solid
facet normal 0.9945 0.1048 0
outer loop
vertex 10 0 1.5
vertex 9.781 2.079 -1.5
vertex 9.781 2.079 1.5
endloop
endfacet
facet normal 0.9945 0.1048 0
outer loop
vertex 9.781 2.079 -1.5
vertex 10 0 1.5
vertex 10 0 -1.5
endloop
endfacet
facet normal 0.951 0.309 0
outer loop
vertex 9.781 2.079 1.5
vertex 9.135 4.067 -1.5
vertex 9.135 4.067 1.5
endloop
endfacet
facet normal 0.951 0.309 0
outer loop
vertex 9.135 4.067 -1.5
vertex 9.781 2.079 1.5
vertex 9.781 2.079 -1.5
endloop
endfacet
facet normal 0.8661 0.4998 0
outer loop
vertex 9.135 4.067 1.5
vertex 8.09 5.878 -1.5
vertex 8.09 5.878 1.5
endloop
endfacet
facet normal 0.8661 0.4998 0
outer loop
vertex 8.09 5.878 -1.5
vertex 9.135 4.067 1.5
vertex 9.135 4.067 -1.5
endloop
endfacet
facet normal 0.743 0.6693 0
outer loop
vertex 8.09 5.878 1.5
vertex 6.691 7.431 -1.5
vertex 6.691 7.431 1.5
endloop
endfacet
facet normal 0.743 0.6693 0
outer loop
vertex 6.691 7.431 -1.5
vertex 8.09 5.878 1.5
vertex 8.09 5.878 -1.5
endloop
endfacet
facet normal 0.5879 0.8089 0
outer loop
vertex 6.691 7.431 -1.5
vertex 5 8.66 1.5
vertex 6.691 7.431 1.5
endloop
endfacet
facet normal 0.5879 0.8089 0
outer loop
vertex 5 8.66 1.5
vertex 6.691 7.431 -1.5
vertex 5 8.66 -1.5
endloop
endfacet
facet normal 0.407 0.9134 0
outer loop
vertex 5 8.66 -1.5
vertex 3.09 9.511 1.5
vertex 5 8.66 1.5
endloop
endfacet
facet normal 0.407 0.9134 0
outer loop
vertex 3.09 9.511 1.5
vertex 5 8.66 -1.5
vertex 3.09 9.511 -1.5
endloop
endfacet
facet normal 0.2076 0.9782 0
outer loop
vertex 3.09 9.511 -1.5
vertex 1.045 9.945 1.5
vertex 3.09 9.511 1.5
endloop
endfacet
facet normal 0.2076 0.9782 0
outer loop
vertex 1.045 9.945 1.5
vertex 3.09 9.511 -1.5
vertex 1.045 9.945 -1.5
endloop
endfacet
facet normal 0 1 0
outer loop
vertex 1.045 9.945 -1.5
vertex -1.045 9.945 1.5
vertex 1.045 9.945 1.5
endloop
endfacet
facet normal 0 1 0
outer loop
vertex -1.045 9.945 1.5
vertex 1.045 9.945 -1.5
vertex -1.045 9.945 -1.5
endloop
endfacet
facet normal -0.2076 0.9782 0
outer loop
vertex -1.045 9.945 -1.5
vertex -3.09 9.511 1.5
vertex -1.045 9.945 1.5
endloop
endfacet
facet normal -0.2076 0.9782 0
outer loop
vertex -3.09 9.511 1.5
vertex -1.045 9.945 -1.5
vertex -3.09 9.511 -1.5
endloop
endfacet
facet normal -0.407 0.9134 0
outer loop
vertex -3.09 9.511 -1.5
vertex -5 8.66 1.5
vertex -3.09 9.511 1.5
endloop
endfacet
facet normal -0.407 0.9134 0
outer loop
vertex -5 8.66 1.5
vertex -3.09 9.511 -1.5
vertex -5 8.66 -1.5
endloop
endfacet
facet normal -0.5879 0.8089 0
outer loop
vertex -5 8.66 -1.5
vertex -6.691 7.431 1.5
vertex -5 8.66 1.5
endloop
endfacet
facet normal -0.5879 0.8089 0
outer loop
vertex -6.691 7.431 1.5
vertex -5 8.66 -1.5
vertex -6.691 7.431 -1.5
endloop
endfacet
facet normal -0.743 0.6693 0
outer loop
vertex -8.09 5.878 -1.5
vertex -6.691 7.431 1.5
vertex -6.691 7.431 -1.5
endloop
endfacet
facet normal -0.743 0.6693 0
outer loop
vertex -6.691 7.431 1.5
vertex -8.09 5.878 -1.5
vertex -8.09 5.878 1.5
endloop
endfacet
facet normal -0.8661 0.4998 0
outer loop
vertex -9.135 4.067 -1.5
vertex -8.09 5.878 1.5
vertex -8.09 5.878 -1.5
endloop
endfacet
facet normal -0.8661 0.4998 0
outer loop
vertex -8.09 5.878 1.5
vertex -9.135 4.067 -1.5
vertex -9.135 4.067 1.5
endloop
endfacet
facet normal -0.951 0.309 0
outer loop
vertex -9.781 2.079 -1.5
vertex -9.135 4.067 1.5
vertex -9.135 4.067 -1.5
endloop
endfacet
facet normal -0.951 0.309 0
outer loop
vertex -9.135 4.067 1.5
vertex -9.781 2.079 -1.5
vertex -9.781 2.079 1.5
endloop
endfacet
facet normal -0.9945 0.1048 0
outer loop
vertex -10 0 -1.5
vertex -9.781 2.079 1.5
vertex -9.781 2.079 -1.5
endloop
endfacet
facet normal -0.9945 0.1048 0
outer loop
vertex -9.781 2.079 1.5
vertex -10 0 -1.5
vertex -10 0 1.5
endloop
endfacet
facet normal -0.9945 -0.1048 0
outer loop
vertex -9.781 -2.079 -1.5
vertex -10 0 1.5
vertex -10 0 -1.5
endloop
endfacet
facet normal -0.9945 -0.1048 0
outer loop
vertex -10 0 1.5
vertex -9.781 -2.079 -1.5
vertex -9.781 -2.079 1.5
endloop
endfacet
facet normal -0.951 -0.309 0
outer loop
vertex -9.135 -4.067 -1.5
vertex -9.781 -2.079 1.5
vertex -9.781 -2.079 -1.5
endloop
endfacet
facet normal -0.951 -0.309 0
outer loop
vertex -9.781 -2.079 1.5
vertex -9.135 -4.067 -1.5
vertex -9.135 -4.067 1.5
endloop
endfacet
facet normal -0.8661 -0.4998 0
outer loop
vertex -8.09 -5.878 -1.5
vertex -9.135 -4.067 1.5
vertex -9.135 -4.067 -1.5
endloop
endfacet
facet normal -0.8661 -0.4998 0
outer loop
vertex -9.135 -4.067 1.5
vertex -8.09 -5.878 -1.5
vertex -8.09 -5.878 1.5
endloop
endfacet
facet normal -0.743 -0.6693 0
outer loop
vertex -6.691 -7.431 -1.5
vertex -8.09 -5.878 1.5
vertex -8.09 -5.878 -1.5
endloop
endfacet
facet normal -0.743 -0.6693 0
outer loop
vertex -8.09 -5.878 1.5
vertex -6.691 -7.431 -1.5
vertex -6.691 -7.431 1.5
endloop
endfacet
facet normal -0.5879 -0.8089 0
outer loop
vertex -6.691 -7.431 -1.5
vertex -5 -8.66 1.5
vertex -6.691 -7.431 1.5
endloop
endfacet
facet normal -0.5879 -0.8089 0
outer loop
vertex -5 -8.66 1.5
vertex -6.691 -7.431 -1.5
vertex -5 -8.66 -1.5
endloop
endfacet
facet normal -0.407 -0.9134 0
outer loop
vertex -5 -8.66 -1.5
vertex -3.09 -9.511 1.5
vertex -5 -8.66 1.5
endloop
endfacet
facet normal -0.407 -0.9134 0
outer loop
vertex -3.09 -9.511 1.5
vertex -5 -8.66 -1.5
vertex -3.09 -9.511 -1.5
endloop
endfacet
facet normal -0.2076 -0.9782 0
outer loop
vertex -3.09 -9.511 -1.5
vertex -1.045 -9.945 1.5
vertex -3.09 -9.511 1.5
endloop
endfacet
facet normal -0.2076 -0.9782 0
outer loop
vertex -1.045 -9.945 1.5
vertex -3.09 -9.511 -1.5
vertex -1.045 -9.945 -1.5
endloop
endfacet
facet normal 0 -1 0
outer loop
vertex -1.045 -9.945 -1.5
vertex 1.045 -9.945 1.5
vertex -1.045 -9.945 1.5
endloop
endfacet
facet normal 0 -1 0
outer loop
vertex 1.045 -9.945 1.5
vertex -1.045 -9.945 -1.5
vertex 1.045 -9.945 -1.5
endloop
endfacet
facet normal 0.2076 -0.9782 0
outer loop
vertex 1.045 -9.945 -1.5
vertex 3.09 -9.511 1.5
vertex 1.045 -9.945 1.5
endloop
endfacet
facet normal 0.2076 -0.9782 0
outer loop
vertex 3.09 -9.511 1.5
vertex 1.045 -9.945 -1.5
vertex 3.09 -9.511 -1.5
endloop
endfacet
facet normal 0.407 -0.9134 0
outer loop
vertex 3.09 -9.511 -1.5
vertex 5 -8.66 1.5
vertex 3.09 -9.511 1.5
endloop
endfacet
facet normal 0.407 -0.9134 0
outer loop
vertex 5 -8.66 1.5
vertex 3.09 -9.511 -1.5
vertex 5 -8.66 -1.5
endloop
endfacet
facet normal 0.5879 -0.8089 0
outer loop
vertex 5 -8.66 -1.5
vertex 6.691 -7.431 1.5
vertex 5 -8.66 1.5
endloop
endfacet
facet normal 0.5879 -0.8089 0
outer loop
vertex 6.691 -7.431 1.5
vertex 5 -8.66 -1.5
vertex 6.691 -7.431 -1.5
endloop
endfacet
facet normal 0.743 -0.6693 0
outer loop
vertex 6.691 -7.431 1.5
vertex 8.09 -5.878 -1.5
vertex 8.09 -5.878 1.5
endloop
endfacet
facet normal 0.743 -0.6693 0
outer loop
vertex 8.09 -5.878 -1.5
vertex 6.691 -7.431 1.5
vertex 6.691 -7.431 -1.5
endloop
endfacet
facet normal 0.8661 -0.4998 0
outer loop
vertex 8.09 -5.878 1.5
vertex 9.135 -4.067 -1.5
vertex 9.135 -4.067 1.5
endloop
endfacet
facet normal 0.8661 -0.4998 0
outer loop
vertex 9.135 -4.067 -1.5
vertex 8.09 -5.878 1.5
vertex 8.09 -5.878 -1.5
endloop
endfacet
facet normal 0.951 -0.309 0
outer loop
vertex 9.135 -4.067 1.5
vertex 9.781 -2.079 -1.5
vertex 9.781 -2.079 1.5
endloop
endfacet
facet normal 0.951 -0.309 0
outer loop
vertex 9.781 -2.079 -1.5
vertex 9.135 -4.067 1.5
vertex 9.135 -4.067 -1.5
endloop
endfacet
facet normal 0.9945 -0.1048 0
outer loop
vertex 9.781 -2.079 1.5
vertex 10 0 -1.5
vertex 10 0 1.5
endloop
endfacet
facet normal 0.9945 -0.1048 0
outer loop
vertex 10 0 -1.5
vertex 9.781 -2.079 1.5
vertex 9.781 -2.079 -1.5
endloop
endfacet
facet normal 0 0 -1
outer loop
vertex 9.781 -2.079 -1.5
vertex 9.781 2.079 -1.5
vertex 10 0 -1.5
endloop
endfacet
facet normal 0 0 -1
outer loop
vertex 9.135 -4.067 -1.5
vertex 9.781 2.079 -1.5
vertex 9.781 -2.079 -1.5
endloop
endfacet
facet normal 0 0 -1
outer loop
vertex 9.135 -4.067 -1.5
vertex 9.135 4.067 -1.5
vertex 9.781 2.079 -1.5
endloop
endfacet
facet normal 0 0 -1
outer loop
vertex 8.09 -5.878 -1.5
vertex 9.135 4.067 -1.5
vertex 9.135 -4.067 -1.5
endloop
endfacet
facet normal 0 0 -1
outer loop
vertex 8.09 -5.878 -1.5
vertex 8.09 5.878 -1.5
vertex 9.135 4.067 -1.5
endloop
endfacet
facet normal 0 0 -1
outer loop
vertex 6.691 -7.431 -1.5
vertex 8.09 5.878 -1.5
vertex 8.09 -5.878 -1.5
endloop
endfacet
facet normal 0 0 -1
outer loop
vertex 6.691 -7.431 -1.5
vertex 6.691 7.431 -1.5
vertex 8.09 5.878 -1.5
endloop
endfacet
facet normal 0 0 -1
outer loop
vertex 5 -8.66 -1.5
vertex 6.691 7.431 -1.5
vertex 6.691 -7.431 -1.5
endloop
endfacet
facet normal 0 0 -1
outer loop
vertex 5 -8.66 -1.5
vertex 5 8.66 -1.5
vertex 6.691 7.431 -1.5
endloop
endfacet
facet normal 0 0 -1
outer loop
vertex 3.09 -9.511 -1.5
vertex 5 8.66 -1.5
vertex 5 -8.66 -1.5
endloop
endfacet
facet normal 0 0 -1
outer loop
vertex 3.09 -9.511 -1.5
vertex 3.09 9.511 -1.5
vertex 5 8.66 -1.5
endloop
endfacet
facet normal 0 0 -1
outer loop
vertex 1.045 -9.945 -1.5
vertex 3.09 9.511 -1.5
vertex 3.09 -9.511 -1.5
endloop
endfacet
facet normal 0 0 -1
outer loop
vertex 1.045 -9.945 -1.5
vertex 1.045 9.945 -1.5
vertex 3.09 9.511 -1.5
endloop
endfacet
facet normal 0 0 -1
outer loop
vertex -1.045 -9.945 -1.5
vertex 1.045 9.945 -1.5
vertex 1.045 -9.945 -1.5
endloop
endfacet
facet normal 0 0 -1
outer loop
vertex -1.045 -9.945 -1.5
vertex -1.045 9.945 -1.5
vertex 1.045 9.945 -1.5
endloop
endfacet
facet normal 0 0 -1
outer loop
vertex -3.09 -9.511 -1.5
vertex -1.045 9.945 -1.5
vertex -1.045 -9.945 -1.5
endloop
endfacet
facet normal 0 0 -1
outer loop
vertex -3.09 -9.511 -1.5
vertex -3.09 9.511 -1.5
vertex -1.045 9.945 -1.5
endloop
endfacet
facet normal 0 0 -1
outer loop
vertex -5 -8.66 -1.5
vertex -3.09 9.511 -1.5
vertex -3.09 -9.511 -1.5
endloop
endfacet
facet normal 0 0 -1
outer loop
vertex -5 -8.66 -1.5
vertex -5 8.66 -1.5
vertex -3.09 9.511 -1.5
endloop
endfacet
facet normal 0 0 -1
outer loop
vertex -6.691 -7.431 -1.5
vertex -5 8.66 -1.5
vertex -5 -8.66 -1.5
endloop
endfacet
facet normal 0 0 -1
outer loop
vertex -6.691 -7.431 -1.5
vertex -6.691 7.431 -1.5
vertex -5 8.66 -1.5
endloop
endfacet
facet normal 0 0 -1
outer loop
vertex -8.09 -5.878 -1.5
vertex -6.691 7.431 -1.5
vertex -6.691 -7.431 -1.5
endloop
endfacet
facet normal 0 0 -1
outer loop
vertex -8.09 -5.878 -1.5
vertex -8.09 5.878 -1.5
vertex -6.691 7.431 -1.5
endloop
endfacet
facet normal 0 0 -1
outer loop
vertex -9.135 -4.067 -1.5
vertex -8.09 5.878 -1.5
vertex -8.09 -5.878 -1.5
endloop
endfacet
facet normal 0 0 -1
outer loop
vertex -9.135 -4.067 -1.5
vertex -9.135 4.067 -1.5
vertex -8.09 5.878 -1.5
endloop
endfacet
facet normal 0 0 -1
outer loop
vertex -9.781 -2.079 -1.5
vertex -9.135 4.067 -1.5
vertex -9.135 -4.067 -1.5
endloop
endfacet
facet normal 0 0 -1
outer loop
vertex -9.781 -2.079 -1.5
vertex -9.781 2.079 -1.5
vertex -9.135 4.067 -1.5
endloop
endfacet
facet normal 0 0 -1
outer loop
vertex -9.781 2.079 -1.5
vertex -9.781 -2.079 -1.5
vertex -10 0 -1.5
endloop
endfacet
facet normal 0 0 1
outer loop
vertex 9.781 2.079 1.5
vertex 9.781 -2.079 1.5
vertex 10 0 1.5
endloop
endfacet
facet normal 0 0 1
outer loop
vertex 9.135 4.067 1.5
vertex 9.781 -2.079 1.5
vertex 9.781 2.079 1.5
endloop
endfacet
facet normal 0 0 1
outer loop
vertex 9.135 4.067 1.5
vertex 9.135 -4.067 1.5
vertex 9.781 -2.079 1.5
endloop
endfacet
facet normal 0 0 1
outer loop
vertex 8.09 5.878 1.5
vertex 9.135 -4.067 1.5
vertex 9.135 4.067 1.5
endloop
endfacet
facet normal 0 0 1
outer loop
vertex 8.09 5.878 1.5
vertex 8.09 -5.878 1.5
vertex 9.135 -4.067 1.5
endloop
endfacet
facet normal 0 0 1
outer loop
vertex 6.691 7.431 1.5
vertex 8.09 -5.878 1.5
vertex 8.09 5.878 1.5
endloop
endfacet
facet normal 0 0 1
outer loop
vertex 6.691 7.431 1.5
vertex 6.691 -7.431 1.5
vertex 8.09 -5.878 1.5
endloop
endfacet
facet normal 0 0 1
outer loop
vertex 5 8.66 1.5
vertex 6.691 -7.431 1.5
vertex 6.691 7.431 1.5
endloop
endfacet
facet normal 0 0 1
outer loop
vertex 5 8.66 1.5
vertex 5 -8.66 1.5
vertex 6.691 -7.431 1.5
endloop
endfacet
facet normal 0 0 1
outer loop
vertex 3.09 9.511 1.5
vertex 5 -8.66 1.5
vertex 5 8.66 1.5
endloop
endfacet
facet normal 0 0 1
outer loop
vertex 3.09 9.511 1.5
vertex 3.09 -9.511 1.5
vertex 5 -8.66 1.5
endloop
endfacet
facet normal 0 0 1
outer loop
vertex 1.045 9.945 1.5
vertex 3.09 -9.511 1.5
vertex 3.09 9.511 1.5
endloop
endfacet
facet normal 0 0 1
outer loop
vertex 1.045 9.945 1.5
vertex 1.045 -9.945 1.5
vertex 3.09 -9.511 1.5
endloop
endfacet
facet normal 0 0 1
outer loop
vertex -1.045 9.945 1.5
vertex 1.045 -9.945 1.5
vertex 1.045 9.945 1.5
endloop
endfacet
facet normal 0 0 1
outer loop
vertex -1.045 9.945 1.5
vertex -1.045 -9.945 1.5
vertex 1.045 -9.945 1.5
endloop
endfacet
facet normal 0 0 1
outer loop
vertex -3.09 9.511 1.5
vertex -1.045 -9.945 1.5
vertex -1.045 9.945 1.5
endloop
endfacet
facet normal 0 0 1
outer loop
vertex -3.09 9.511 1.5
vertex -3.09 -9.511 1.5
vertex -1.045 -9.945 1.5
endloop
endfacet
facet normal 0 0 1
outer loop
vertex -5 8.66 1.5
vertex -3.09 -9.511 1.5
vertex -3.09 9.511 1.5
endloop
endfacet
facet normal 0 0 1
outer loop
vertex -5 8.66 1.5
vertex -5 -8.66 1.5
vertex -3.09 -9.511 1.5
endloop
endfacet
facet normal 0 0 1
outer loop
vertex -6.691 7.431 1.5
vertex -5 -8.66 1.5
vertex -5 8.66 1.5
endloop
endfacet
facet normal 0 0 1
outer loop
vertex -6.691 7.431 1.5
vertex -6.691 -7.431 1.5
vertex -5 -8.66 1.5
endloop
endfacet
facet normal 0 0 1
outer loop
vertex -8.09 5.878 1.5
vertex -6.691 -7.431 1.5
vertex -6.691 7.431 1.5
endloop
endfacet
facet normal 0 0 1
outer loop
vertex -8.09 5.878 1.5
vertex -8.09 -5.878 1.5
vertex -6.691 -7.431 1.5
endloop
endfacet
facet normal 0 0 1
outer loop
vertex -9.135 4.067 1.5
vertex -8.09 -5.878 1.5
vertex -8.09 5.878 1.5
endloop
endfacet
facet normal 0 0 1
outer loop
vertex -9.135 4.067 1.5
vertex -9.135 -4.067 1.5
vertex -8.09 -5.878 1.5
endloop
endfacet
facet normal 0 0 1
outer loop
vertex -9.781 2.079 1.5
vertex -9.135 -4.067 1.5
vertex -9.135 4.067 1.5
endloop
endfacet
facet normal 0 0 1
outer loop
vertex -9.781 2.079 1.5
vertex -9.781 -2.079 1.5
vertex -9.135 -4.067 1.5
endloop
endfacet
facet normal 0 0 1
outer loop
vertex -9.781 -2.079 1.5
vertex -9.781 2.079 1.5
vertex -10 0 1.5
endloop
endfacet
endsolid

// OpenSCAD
// Parameters for the central disk
disk_diameter = 20; // Diameter of the disk (consistent with the original model)
disk_thickness = 3; // Adjusted thickness of the disk to match the original model

// Central disk
module central_disk() {
    cylinder(d = disk_diameter, h = disk_thickness, center = true);
}

// Render the central disk
central_disk();
